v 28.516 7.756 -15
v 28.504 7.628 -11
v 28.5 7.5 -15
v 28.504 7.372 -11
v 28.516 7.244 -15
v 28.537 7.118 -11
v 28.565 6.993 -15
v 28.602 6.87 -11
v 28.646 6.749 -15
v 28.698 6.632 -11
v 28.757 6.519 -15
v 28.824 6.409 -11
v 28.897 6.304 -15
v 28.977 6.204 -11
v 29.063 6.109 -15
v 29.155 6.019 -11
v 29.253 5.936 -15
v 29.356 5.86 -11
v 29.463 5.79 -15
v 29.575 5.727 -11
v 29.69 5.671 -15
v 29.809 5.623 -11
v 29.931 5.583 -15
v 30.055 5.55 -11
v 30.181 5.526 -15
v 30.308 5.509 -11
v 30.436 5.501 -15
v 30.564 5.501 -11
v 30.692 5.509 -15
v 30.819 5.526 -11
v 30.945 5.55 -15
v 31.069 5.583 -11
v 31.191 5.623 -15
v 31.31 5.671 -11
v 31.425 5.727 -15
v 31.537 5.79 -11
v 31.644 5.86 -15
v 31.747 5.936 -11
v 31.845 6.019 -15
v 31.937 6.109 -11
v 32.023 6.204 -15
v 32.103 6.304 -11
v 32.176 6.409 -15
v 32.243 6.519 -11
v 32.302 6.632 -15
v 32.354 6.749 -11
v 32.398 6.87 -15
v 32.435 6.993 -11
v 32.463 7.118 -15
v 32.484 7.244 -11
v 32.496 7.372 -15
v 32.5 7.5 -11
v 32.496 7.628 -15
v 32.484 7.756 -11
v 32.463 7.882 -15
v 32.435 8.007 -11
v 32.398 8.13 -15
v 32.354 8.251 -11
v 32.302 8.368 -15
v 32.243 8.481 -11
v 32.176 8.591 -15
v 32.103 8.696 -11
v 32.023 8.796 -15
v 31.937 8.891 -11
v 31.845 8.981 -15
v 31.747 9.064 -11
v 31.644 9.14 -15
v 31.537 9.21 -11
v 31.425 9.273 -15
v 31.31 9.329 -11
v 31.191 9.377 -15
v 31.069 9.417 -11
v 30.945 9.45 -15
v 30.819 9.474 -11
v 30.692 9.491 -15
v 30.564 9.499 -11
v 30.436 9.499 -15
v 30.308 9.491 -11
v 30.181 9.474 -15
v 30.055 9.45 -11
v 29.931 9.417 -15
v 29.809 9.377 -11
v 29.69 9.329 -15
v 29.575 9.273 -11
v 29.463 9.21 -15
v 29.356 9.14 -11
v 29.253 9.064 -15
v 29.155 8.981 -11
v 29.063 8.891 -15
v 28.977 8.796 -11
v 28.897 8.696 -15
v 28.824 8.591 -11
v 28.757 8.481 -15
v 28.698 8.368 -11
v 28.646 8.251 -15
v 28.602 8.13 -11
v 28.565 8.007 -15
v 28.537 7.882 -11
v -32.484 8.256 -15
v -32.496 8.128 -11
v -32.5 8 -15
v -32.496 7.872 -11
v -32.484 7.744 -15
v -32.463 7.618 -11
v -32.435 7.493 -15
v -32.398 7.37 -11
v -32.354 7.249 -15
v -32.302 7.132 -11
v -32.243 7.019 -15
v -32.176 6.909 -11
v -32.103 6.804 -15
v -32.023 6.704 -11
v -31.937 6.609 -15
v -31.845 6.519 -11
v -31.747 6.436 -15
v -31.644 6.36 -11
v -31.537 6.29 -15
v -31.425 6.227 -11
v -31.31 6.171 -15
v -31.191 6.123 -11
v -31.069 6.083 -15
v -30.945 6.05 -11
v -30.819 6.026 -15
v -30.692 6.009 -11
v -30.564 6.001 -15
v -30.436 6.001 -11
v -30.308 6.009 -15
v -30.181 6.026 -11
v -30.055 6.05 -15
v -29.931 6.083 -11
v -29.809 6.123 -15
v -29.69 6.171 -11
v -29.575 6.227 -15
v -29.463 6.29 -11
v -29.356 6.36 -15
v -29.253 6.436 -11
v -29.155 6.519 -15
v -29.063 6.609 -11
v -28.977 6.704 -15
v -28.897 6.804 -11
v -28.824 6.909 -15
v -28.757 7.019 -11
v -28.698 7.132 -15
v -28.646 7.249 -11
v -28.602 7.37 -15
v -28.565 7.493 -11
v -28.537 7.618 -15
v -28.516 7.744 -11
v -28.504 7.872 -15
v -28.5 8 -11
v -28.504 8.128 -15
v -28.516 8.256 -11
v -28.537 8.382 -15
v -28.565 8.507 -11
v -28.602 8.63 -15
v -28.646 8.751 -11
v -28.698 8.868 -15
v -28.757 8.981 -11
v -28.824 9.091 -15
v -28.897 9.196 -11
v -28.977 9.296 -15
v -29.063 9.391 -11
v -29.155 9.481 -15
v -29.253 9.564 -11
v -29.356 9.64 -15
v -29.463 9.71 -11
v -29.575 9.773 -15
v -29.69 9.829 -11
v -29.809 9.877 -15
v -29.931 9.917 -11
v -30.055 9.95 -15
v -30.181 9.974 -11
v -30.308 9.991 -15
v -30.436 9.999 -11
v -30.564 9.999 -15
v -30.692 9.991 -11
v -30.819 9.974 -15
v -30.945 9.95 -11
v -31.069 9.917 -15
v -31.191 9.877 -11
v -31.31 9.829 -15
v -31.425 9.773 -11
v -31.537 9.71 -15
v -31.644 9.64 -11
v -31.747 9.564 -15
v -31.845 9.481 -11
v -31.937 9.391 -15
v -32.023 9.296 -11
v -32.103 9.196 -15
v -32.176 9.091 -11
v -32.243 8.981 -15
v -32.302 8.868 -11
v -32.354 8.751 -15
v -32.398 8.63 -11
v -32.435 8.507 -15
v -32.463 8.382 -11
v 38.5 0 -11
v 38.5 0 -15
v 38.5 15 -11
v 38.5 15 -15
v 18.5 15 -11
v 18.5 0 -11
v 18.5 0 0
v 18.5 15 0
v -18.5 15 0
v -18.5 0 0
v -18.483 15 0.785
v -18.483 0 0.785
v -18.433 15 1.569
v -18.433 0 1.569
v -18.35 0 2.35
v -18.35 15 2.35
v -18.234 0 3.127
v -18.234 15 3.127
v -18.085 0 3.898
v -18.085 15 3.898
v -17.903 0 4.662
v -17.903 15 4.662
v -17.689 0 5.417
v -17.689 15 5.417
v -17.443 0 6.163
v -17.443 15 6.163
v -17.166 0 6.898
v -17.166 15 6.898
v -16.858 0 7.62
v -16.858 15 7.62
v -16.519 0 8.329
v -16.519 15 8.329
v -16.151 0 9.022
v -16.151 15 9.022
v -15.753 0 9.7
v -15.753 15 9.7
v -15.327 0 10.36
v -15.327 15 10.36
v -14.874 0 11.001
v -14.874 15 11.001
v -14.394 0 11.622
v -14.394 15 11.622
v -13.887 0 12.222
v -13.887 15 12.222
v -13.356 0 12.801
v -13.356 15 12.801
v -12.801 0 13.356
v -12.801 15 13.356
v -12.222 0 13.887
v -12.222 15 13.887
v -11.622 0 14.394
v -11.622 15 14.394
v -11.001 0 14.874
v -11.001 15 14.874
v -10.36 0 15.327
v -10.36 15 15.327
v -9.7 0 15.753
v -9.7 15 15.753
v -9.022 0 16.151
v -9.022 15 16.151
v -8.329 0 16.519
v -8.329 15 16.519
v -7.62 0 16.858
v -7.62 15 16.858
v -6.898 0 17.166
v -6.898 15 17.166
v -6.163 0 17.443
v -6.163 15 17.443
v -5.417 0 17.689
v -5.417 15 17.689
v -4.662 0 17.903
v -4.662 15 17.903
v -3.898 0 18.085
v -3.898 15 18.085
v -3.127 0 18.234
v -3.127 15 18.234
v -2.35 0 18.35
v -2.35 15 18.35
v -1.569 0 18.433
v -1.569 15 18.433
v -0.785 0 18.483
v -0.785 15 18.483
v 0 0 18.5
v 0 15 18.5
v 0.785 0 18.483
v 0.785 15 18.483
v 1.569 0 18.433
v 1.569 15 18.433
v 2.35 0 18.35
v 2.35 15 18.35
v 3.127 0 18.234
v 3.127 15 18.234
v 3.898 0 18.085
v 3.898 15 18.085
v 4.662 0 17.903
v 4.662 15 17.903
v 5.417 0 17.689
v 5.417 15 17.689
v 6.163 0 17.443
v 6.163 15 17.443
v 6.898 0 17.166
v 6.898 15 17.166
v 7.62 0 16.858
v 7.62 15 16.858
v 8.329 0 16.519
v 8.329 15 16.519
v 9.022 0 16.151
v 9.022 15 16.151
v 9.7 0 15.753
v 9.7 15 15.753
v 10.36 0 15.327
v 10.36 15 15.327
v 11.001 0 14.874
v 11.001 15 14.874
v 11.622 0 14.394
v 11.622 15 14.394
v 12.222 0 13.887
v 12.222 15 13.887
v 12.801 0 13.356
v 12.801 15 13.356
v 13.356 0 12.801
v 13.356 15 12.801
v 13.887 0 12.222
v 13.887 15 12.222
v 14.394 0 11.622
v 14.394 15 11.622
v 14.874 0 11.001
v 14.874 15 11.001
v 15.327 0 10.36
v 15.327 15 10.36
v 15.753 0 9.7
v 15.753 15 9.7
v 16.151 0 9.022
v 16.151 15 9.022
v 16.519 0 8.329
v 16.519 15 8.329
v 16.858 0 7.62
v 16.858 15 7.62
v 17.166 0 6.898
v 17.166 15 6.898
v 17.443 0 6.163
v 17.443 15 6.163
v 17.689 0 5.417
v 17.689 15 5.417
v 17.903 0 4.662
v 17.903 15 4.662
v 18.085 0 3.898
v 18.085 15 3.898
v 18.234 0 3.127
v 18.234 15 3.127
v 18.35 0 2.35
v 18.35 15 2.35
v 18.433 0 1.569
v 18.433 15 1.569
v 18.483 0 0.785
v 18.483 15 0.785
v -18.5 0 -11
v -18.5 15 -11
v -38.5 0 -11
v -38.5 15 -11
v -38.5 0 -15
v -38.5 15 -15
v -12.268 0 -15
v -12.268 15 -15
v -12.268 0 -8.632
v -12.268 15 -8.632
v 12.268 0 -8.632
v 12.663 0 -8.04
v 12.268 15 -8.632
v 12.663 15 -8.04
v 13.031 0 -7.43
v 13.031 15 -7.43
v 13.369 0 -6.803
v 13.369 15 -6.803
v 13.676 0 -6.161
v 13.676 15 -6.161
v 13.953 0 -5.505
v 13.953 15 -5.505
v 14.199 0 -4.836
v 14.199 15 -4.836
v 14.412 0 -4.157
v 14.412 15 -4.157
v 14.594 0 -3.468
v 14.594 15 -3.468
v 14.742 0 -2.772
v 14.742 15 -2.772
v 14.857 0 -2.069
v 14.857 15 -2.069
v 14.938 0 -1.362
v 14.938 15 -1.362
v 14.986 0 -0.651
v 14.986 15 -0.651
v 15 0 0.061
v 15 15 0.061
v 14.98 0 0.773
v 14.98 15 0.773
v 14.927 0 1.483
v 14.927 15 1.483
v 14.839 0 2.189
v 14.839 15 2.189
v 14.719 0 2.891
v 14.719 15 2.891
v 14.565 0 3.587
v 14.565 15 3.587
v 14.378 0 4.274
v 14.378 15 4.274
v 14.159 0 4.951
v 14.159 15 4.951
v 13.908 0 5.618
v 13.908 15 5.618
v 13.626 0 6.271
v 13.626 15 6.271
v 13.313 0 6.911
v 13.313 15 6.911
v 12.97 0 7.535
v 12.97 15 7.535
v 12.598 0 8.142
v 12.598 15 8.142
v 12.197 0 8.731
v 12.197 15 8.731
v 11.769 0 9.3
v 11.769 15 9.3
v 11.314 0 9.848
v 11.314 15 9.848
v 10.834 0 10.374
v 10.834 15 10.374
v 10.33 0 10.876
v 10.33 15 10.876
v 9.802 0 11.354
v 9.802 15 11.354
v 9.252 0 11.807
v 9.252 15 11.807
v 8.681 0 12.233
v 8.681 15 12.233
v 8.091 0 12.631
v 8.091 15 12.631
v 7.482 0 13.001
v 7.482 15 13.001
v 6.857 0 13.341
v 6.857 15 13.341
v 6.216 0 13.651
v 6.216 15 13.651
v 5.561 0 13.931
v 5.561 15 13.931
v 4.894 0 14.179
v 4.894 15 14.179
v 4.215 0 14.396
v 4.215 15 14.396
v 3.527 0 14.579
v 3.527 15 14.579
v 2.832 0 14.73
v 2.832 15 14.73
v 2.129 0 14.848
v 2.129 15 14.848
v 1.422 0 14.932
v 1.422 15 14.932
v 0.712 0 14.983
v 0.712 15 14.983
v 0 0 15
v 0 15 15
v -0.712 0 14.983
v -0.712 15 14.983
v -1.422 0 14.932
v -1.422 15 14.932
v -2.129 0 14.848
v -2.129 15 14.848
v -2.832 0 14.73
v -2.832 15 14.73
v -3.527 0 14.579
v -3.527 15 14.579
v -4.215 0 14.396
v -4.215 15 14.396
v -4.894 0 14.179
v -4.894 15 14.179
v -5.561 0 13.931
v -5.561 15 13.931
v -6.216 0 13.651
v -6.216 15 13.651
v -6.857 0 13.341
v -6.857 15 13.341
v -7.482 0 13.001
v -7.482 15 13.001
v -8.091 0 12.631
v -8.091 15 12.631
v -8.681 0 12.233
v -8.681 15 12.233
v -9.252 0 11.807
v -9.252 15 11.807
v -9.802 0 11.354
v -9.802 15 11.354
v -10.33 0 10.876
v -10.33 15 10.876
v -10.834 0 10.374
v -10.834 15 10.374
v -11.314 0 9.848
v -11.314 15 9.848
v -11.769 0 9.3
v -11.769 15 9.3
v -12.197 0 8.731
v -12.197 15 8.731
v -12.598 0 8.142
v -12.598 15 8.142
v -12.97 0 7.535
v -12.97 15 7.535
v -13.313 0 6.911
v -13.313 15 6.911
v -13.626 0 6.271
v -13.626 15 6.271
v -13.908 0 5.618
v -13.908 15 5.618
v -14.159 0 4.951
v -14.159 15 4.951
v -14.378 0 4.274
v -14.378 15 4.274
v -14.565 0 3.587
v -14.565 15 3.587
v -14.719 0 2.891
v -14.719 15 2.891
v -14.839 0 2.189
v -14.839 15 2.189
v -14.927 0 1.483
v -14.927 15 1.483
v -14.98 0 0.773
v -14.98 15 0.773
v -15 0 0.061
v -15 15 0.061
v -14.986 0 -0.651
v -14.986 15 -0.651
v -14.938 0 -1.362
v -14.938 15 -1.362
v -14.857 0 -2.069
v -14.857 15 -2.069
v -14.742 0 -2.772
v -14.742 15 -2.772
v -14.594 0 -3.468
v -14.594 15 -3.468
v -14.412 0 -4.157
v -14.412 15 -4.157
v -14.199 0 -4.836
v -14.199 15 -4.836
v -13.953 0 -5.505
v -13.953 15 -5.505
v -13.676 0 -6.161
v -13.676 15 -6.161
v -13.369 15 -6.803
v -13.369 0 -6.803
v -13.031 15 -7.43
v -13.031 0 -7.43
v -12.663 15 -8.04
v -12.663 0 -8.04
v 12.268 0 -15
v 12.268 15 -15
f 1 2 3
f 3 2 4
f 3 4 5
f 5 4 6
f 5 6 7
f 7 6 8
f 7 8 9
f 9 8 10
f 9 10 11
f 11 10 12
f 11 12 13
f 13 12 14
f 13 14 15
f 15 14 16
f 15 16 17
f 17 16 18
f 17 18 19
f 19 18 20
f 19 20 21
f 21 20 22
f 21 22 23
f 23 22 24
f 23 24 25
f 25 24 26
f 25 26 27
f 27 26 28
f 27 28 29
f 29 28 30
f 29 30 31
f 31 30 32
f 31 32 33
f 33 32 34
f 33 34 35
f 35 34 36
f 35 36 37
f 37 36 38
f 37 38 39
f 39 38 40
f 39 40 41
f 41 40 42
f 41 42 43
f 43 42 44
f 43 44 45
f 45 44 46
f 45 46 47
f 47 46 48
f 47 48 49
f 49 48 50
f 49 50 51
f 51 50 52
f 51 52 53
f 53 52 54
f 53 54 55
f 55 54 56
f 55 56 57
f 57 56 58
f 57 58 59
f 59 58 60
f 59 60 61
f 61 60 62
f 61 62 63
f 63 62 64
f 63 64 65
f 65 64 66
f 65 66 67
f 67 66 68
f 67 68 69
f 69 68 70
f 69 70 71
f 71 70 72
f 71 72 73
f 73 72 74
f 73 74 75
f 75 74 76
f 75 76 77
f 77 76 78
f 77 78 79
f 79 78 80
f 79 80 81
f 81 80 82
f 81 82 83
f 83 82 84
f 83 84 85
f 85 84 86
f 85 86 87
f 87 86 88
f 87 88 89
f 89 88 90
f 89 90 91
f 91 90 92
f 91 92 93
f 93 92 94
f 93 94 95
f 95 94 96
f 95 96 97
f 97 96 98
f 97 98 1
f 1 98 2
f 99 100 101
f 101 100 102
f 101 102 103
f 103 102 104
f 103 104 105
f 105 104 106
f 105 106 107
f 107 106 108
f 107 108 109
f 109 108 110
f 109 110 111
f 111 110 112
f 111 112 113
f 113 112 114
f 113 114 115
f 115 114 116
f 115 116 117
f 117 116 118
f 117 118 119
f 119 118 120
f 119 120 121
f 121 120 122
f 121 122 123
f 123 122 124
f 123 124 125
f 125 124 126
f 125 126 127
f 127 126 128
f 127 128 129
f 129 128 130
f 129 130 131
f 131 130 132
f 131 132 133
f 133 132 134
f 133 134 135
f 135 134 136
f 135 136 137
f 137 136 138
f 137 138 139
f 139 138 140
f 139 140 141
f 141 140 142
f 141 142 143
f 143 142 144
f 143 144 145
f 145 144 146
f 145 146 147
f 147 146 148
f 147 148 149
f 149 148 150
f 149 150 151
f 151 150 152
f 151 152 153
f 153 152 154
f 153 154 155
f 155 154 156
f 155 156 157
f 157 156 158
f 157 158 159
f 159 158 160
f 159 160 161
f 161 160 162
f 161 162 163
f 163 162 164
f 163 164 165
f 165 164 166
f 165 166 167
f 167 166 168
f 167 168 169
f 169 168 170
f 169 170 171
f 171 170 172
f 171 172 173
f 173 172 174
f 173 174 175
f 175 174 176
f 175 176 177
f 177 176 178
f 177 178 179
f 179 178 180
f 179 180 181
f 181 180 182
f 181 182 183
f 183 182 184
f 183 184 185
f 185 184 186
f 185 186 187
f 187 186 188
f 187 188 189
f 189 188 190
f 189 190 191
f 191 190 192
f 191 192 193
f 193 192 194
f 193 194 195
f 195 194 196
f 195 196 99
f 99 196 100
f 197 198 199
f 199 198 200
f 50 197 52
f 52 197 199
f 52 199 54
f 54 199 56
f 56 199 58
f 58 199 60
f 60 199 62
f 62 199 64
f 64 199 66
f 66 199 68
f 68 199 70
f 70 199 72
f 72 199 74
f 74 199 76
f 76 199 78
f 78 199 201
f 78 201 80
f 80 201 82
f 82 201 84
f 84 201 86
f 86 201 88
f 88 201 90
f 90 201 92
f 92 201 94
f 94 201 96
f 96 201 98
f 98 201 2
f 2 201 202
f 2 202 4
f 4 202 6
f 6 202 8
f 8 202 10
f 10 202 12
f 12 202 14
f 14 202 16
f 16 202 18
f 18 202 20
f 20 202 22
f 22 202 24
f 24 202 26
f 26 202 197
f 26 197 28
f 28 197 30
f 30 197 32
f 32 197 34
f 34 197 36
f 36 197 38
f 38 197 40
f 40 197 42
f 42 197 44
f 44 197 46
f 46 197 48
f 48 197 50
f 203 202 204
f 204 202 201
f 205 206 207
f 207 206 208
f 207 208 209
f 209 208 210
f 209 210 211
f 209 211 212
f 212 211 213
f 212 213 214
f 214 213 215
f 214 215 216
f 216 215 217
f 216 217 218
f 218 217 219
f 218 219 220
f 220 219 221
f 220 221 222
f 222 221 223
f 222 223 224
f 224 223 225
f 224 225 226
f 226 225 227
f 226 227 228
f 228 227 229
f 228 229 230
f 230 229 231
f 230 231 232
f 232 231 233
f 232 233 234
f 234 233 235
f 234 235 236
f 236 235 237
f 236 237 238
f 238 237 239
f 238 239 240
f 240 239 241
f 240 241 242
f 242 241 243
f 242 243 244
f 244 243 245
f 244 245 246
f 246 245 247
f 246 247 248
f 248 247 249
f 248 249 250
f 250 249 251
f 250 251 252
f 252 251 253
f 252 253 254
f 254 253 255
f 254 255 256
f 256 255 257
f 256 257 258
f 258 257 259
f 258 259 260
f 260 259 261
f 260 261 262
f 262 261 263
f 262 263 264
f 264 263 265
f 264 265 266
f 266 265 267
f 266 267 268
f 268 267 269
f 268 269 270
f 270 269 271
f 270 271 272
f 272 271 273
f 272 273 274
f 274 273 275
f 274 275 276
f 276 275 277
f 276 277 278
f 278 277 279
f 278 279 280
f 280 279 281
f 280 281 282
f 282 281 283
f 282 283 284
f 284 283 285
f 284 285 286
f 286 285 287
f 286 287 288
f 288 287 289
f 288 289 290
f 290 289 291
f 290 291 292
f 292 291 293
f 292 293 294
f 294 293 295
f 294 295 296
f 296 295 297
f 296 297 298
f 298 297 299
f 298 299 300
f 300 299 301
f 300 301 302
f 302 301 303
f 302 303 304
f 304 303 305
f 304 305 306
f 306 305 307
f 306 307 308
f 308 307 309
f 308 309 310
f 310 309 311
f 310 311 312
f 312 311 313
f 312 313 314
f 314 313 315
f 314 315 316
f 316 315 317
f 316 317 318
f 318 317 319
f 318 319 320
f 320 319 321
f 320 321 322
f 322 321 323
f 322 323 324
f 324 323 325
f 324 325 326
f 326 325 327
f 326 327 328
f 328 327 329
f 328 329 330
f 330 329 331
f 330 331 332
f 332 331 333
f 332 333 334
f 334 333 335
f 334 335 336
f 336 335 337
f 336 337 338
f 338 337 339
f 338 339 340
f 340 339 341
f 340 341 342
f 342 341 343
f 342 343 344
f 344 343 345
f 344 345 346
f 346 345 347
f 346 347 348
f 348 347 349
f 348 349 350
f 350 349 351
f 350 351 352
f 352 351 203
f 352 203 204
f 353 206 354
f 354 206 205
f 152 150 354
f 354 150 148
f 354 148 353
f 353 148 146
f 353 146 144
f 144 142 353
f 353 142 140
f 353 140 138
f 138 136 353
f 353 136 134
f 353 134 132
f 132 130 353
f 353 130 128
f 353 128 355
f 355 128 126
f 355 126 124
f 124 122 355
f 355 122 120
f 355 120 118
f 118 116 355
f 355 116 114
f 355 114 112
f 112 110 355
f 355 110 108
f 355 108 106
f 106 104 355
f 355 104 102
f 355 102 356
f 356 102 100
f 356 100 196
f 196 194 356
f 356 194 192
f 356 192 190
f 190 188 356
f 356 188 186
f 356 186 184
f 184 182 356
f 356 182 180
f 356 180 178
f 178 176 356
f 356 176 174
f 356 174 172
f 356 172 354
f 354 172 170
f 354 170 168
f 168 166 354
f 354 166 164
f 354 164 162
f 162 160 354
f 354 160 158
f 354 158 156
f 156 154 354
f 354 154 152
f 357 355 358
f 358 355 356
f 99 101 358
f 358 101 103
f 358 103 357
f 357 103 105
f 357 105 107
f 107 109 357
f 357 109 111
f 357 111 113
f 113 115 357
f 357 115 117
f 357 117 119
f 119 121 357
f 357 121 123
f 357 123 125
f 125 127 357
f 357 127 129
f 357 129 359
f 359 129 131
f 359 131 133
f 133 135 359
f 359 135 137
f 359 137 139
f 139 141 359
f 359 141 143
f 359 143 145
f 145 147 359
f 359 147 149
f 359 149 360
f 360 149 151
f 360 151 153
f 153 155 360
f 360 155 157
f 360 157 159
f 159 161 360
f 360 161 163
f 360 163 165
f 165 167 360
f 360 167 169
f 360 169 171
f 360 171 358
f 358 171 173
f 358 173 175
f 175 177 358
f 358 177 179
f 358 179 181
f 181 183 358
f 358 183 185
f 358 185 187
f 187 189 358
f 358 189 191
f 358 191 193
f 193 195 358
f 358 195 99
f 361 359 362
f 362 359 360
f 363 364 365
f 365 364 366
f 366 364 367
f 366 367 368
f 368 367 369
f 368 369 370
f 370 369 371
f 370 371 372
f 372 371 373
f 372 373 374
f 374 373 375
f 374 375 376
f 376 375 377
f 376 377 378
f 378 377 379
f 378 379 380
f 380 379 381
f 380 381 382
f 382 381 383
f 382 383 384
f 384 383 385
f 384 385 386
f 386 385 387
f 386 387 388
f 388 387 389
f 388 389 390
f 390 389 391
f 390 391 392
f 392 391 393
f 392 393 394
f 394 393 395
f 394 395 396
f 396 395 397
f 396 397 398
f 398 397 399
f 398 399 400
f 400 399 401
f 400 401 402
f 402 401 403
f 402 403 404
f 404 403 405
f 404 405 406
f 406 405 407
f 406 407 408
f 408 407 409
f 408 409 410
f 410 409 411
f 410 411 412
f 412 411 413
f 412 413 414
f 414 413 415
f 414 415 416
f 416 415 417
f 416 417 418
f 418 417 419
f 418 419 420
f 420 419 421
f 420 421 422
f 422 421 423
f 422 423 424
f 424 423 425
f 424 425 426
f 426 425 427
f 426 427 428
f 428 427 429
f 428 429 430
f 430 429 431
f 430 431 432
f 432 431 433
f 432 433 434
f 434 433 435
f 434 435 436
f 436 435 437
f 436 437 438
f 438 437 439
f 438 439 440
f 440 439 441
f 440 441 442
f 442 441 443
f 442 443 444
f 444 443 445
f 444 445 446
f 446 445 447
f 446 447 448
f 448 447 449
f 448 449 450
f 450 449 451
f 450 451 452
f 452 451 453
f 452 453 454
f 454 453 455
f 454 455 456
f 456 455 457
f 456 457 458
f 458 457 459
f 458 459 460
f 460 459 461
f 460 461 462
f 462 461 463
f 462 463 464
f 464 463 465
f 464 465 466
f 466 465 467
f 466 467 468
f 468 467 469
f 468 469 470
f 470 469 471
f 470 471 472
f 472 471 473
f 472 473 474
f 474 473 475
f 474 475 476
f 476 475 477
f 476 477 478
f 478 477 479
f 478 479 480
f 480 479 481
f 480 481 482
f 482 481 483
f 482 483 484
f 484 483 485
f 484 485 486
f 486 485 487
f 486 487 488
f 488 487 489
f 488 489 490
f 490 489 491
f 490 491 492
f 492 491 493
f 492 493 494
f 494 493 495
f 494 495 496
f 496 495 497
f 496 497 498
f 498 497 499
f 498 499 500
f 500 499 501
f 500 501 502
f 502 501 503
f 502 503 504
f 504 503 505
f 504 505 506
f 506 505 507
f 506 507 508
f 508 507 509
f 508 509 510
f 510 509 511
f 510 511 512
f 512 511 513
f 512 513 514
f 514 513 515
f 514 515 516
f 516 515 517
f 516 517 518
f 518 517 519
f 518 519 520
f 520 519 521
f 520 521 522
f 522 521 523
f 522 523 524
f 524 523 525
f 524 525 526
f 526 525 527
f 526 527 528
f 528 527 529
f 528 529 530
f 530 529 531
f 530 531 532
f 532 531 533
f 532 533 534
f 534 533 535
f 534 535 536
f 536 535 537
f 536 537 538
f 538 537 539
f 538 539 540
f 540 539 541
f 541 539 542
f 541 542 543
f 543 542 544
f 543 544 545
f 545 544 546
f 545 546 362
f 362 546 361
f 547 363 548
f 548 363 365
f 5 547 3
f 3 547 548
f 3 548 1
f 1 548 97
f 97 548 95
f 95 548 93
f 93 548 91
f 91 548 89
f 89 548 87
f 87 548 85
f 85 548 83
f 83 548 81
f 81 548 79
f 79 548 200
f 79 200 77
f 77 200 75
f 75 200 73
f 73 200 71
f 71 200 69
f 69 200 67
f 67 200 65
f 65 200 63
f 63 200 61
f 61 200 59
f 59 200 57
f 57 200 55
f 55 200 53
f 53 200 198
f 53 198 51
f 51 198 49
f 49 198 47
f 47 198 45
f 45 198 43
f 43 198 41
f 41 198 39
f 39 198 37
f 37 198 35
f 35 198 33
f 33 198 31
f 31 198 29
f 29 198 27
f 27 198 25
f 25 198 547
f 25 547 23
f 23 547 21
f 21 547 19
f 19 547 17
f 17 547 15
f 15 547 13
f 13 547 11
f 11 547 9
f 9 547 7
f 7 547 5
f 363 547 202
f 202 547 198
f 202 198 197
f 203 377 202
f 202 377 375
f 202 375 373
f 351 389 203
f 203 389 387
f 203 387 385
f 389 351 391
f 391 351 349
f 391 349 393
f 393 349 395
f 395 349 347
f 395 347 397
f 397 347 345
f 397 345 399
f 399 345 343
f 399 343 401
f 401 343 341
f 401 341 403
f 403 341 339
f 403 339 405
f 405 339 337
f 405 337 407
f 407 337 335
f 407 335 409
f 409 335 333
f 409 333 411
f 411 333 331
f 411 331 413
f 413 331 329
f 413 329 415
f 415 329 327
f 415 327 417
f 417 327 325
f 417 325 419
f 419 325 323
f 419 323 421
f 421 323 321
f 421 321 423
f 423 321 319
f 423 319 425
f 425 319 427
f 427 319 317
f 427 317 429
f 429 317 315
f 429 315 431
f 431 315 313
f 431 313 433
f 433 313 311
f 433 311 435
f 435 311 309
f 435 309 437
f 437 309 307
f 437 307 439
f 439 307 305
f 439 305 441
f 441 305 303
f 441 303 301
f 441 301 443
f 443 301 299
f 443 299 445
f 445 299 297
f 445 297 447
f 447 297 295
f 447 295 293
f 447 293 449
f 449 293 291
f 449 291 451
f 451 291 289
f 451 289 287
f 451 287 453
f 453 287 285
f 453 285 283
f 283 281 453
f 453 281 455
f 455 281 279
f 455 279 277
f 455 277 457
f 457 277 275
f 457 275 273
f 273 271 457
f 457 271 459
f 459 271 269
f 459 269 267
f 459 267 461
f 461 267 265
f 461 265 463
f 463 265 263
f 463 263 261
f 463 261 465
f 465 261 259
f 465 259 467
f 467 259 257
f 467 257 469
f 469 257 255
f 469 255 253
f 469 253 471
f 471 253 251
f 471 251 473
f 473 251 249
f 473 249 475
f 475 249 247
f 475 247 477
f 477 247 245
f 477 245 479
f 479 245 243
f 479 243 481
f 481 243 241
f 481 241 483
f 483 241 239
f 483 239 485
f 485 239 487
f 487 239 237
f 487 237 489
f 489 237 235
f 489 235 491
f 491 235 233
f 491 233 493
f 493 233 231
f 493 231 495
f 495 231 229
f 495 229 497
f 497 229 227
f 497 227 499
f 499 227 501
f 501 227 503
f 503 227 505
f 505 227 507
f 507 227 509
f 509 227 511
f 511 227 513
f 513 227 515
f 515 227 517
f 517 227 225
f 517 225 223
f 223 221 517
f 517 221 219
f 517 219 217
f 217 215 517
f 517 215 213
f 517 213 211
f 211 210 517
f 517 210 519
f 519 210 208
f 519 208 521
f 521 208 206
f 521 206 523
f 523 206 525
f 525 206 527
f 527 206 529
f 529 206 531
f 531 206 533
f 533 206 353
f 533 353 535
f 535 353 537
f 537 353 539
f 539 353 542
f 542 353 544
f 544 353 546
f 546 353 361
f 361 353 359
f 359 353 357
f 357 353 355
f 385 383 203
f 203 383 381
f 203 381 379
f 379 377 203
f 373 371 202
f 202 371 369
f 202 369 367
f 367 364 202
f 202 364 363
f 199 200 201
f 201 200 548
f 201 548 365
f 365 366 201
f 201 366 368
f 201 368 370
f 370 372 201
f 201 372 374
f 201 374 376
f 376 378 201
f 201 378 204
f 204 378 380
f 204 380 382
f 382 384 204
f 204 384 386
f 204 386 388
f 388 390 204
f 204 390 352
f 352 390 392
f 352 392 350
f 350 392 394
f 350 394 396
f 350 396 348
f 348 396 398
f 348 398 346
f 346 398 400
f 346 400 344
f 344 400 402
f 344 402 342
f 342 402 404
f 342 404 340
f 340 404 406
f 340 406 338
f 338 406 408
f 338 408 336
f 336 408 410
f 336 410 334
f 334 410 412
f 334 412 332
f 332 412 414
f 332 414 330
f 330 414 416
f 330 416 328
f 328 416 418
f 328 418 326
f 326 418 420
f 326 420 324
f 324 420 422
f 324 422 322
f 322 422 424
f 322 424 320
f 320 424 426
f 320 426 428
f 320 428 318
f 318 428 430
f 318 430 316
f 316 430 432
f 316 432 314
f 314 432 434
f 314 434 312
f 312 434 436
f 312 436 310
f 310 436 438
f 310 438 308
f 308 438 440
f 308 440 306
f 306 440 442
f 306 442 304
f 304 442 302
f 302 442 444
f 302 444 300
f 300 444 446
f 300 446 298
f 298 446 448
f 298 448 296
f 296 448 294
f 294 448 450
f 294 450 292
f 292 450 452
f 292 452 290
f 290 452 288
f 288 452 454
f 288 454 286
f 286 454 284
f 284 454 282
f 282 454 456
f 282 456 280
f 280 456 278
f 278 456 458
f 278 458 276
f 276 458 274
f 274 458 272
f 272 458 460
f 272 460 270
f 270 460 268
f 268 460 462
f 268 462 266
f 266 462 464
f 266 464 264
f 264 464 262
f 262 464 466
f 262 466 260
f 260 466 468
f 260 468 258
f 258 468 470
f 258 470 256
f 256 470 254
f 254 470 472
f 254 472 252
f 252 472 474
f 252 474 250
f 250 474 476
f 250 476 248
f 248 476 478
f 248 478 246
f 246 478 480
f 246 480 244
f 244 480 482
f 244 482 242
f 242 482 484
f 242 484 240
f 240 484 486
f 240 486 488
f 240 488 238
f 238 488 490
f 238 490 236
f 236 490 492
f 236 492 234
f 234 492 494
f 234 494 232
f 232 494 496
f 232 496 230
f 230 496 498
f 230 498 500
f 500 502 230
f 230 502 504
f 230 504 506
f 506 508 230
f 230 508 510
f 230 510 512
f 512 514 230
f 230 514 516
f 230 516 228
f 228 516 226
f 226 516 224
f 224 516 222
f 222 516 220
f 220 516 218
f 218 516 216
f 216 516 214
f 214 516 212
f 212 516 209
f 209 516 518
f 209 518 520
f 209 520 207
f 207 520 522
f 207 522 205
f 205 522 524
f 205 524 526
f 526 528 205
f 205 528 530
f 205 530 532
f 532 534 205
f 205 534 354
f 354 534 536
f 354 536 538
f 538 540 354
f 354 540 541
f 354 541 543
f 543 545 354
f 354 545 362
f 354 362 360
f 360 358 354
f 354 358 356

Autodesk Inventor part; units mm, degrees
ref_plane "YZ Plane" through (0, 0, 0) normal (1, 0, 0) x (0, 1, 0)
ref_plane "XZ Plane" through (0, 0, 0) normal (0, 1, 0) x (-1, 0, 0)
ref_plane "XY Plane" through (0, 0, 0) normal (0, 0, 1) x (1, 0, 0)
sketch "Sketch1" plane through (0, 0, 0) normal (0, 1, 0) x (-1, 0, 0)
  arc A0 (12.2676, -8.6317) -> (-12.2676, -8.6317) centre (0, 0) ccw
  line L0 (-12.2676, -15) -> (-38.5, -15)
  arc A1 (18.5, 0) -> (-18.5, 0) centre (0, 0) ccw
  line L1 (-38.5, -15) -> (-38.5, -11)
  line L2 (-18.5, 0) -> (-18.5, -11)
  line L3 (-38.5, -11) -> (-18.5, -11)
  line L4 (-12.2676, -15) -> (-12.2676, -11)
  line L5 (-12.2676, -11) -> (-12.2676, -8.6317)
  line L6 (38.5, -11) -> (38.5, -15)
  line L7 (38.5, -15) -> (12.2676, -15)
  line L8 (18.5, 0) -> (18.5, -11)
  line L9 (18.5, -11) -> (38.5, -11)
  line L10 (12.2676, -8.6317) -> (12.2676, -15)
  dimension "d0" = 30
  dimension "d1" = 37
  dimension "d2" = 4
  dimension "d3" = 4
  dimension "d4" = 20
  dimension "d5" = 20
extrude "Extrusion1" add sketch "Sketch1" along normal blind 15
hole "Hole1" at (-30.5, 8, -11) direction (0, 0, -1) diameter 4 depth 8 tip angle 118
hole "Hole2" at (30.5, 7.5, -11) direction (0, 0, -1) diameter 4 depth 8 tip angle 118
properties part number "Rohrhalterung"
